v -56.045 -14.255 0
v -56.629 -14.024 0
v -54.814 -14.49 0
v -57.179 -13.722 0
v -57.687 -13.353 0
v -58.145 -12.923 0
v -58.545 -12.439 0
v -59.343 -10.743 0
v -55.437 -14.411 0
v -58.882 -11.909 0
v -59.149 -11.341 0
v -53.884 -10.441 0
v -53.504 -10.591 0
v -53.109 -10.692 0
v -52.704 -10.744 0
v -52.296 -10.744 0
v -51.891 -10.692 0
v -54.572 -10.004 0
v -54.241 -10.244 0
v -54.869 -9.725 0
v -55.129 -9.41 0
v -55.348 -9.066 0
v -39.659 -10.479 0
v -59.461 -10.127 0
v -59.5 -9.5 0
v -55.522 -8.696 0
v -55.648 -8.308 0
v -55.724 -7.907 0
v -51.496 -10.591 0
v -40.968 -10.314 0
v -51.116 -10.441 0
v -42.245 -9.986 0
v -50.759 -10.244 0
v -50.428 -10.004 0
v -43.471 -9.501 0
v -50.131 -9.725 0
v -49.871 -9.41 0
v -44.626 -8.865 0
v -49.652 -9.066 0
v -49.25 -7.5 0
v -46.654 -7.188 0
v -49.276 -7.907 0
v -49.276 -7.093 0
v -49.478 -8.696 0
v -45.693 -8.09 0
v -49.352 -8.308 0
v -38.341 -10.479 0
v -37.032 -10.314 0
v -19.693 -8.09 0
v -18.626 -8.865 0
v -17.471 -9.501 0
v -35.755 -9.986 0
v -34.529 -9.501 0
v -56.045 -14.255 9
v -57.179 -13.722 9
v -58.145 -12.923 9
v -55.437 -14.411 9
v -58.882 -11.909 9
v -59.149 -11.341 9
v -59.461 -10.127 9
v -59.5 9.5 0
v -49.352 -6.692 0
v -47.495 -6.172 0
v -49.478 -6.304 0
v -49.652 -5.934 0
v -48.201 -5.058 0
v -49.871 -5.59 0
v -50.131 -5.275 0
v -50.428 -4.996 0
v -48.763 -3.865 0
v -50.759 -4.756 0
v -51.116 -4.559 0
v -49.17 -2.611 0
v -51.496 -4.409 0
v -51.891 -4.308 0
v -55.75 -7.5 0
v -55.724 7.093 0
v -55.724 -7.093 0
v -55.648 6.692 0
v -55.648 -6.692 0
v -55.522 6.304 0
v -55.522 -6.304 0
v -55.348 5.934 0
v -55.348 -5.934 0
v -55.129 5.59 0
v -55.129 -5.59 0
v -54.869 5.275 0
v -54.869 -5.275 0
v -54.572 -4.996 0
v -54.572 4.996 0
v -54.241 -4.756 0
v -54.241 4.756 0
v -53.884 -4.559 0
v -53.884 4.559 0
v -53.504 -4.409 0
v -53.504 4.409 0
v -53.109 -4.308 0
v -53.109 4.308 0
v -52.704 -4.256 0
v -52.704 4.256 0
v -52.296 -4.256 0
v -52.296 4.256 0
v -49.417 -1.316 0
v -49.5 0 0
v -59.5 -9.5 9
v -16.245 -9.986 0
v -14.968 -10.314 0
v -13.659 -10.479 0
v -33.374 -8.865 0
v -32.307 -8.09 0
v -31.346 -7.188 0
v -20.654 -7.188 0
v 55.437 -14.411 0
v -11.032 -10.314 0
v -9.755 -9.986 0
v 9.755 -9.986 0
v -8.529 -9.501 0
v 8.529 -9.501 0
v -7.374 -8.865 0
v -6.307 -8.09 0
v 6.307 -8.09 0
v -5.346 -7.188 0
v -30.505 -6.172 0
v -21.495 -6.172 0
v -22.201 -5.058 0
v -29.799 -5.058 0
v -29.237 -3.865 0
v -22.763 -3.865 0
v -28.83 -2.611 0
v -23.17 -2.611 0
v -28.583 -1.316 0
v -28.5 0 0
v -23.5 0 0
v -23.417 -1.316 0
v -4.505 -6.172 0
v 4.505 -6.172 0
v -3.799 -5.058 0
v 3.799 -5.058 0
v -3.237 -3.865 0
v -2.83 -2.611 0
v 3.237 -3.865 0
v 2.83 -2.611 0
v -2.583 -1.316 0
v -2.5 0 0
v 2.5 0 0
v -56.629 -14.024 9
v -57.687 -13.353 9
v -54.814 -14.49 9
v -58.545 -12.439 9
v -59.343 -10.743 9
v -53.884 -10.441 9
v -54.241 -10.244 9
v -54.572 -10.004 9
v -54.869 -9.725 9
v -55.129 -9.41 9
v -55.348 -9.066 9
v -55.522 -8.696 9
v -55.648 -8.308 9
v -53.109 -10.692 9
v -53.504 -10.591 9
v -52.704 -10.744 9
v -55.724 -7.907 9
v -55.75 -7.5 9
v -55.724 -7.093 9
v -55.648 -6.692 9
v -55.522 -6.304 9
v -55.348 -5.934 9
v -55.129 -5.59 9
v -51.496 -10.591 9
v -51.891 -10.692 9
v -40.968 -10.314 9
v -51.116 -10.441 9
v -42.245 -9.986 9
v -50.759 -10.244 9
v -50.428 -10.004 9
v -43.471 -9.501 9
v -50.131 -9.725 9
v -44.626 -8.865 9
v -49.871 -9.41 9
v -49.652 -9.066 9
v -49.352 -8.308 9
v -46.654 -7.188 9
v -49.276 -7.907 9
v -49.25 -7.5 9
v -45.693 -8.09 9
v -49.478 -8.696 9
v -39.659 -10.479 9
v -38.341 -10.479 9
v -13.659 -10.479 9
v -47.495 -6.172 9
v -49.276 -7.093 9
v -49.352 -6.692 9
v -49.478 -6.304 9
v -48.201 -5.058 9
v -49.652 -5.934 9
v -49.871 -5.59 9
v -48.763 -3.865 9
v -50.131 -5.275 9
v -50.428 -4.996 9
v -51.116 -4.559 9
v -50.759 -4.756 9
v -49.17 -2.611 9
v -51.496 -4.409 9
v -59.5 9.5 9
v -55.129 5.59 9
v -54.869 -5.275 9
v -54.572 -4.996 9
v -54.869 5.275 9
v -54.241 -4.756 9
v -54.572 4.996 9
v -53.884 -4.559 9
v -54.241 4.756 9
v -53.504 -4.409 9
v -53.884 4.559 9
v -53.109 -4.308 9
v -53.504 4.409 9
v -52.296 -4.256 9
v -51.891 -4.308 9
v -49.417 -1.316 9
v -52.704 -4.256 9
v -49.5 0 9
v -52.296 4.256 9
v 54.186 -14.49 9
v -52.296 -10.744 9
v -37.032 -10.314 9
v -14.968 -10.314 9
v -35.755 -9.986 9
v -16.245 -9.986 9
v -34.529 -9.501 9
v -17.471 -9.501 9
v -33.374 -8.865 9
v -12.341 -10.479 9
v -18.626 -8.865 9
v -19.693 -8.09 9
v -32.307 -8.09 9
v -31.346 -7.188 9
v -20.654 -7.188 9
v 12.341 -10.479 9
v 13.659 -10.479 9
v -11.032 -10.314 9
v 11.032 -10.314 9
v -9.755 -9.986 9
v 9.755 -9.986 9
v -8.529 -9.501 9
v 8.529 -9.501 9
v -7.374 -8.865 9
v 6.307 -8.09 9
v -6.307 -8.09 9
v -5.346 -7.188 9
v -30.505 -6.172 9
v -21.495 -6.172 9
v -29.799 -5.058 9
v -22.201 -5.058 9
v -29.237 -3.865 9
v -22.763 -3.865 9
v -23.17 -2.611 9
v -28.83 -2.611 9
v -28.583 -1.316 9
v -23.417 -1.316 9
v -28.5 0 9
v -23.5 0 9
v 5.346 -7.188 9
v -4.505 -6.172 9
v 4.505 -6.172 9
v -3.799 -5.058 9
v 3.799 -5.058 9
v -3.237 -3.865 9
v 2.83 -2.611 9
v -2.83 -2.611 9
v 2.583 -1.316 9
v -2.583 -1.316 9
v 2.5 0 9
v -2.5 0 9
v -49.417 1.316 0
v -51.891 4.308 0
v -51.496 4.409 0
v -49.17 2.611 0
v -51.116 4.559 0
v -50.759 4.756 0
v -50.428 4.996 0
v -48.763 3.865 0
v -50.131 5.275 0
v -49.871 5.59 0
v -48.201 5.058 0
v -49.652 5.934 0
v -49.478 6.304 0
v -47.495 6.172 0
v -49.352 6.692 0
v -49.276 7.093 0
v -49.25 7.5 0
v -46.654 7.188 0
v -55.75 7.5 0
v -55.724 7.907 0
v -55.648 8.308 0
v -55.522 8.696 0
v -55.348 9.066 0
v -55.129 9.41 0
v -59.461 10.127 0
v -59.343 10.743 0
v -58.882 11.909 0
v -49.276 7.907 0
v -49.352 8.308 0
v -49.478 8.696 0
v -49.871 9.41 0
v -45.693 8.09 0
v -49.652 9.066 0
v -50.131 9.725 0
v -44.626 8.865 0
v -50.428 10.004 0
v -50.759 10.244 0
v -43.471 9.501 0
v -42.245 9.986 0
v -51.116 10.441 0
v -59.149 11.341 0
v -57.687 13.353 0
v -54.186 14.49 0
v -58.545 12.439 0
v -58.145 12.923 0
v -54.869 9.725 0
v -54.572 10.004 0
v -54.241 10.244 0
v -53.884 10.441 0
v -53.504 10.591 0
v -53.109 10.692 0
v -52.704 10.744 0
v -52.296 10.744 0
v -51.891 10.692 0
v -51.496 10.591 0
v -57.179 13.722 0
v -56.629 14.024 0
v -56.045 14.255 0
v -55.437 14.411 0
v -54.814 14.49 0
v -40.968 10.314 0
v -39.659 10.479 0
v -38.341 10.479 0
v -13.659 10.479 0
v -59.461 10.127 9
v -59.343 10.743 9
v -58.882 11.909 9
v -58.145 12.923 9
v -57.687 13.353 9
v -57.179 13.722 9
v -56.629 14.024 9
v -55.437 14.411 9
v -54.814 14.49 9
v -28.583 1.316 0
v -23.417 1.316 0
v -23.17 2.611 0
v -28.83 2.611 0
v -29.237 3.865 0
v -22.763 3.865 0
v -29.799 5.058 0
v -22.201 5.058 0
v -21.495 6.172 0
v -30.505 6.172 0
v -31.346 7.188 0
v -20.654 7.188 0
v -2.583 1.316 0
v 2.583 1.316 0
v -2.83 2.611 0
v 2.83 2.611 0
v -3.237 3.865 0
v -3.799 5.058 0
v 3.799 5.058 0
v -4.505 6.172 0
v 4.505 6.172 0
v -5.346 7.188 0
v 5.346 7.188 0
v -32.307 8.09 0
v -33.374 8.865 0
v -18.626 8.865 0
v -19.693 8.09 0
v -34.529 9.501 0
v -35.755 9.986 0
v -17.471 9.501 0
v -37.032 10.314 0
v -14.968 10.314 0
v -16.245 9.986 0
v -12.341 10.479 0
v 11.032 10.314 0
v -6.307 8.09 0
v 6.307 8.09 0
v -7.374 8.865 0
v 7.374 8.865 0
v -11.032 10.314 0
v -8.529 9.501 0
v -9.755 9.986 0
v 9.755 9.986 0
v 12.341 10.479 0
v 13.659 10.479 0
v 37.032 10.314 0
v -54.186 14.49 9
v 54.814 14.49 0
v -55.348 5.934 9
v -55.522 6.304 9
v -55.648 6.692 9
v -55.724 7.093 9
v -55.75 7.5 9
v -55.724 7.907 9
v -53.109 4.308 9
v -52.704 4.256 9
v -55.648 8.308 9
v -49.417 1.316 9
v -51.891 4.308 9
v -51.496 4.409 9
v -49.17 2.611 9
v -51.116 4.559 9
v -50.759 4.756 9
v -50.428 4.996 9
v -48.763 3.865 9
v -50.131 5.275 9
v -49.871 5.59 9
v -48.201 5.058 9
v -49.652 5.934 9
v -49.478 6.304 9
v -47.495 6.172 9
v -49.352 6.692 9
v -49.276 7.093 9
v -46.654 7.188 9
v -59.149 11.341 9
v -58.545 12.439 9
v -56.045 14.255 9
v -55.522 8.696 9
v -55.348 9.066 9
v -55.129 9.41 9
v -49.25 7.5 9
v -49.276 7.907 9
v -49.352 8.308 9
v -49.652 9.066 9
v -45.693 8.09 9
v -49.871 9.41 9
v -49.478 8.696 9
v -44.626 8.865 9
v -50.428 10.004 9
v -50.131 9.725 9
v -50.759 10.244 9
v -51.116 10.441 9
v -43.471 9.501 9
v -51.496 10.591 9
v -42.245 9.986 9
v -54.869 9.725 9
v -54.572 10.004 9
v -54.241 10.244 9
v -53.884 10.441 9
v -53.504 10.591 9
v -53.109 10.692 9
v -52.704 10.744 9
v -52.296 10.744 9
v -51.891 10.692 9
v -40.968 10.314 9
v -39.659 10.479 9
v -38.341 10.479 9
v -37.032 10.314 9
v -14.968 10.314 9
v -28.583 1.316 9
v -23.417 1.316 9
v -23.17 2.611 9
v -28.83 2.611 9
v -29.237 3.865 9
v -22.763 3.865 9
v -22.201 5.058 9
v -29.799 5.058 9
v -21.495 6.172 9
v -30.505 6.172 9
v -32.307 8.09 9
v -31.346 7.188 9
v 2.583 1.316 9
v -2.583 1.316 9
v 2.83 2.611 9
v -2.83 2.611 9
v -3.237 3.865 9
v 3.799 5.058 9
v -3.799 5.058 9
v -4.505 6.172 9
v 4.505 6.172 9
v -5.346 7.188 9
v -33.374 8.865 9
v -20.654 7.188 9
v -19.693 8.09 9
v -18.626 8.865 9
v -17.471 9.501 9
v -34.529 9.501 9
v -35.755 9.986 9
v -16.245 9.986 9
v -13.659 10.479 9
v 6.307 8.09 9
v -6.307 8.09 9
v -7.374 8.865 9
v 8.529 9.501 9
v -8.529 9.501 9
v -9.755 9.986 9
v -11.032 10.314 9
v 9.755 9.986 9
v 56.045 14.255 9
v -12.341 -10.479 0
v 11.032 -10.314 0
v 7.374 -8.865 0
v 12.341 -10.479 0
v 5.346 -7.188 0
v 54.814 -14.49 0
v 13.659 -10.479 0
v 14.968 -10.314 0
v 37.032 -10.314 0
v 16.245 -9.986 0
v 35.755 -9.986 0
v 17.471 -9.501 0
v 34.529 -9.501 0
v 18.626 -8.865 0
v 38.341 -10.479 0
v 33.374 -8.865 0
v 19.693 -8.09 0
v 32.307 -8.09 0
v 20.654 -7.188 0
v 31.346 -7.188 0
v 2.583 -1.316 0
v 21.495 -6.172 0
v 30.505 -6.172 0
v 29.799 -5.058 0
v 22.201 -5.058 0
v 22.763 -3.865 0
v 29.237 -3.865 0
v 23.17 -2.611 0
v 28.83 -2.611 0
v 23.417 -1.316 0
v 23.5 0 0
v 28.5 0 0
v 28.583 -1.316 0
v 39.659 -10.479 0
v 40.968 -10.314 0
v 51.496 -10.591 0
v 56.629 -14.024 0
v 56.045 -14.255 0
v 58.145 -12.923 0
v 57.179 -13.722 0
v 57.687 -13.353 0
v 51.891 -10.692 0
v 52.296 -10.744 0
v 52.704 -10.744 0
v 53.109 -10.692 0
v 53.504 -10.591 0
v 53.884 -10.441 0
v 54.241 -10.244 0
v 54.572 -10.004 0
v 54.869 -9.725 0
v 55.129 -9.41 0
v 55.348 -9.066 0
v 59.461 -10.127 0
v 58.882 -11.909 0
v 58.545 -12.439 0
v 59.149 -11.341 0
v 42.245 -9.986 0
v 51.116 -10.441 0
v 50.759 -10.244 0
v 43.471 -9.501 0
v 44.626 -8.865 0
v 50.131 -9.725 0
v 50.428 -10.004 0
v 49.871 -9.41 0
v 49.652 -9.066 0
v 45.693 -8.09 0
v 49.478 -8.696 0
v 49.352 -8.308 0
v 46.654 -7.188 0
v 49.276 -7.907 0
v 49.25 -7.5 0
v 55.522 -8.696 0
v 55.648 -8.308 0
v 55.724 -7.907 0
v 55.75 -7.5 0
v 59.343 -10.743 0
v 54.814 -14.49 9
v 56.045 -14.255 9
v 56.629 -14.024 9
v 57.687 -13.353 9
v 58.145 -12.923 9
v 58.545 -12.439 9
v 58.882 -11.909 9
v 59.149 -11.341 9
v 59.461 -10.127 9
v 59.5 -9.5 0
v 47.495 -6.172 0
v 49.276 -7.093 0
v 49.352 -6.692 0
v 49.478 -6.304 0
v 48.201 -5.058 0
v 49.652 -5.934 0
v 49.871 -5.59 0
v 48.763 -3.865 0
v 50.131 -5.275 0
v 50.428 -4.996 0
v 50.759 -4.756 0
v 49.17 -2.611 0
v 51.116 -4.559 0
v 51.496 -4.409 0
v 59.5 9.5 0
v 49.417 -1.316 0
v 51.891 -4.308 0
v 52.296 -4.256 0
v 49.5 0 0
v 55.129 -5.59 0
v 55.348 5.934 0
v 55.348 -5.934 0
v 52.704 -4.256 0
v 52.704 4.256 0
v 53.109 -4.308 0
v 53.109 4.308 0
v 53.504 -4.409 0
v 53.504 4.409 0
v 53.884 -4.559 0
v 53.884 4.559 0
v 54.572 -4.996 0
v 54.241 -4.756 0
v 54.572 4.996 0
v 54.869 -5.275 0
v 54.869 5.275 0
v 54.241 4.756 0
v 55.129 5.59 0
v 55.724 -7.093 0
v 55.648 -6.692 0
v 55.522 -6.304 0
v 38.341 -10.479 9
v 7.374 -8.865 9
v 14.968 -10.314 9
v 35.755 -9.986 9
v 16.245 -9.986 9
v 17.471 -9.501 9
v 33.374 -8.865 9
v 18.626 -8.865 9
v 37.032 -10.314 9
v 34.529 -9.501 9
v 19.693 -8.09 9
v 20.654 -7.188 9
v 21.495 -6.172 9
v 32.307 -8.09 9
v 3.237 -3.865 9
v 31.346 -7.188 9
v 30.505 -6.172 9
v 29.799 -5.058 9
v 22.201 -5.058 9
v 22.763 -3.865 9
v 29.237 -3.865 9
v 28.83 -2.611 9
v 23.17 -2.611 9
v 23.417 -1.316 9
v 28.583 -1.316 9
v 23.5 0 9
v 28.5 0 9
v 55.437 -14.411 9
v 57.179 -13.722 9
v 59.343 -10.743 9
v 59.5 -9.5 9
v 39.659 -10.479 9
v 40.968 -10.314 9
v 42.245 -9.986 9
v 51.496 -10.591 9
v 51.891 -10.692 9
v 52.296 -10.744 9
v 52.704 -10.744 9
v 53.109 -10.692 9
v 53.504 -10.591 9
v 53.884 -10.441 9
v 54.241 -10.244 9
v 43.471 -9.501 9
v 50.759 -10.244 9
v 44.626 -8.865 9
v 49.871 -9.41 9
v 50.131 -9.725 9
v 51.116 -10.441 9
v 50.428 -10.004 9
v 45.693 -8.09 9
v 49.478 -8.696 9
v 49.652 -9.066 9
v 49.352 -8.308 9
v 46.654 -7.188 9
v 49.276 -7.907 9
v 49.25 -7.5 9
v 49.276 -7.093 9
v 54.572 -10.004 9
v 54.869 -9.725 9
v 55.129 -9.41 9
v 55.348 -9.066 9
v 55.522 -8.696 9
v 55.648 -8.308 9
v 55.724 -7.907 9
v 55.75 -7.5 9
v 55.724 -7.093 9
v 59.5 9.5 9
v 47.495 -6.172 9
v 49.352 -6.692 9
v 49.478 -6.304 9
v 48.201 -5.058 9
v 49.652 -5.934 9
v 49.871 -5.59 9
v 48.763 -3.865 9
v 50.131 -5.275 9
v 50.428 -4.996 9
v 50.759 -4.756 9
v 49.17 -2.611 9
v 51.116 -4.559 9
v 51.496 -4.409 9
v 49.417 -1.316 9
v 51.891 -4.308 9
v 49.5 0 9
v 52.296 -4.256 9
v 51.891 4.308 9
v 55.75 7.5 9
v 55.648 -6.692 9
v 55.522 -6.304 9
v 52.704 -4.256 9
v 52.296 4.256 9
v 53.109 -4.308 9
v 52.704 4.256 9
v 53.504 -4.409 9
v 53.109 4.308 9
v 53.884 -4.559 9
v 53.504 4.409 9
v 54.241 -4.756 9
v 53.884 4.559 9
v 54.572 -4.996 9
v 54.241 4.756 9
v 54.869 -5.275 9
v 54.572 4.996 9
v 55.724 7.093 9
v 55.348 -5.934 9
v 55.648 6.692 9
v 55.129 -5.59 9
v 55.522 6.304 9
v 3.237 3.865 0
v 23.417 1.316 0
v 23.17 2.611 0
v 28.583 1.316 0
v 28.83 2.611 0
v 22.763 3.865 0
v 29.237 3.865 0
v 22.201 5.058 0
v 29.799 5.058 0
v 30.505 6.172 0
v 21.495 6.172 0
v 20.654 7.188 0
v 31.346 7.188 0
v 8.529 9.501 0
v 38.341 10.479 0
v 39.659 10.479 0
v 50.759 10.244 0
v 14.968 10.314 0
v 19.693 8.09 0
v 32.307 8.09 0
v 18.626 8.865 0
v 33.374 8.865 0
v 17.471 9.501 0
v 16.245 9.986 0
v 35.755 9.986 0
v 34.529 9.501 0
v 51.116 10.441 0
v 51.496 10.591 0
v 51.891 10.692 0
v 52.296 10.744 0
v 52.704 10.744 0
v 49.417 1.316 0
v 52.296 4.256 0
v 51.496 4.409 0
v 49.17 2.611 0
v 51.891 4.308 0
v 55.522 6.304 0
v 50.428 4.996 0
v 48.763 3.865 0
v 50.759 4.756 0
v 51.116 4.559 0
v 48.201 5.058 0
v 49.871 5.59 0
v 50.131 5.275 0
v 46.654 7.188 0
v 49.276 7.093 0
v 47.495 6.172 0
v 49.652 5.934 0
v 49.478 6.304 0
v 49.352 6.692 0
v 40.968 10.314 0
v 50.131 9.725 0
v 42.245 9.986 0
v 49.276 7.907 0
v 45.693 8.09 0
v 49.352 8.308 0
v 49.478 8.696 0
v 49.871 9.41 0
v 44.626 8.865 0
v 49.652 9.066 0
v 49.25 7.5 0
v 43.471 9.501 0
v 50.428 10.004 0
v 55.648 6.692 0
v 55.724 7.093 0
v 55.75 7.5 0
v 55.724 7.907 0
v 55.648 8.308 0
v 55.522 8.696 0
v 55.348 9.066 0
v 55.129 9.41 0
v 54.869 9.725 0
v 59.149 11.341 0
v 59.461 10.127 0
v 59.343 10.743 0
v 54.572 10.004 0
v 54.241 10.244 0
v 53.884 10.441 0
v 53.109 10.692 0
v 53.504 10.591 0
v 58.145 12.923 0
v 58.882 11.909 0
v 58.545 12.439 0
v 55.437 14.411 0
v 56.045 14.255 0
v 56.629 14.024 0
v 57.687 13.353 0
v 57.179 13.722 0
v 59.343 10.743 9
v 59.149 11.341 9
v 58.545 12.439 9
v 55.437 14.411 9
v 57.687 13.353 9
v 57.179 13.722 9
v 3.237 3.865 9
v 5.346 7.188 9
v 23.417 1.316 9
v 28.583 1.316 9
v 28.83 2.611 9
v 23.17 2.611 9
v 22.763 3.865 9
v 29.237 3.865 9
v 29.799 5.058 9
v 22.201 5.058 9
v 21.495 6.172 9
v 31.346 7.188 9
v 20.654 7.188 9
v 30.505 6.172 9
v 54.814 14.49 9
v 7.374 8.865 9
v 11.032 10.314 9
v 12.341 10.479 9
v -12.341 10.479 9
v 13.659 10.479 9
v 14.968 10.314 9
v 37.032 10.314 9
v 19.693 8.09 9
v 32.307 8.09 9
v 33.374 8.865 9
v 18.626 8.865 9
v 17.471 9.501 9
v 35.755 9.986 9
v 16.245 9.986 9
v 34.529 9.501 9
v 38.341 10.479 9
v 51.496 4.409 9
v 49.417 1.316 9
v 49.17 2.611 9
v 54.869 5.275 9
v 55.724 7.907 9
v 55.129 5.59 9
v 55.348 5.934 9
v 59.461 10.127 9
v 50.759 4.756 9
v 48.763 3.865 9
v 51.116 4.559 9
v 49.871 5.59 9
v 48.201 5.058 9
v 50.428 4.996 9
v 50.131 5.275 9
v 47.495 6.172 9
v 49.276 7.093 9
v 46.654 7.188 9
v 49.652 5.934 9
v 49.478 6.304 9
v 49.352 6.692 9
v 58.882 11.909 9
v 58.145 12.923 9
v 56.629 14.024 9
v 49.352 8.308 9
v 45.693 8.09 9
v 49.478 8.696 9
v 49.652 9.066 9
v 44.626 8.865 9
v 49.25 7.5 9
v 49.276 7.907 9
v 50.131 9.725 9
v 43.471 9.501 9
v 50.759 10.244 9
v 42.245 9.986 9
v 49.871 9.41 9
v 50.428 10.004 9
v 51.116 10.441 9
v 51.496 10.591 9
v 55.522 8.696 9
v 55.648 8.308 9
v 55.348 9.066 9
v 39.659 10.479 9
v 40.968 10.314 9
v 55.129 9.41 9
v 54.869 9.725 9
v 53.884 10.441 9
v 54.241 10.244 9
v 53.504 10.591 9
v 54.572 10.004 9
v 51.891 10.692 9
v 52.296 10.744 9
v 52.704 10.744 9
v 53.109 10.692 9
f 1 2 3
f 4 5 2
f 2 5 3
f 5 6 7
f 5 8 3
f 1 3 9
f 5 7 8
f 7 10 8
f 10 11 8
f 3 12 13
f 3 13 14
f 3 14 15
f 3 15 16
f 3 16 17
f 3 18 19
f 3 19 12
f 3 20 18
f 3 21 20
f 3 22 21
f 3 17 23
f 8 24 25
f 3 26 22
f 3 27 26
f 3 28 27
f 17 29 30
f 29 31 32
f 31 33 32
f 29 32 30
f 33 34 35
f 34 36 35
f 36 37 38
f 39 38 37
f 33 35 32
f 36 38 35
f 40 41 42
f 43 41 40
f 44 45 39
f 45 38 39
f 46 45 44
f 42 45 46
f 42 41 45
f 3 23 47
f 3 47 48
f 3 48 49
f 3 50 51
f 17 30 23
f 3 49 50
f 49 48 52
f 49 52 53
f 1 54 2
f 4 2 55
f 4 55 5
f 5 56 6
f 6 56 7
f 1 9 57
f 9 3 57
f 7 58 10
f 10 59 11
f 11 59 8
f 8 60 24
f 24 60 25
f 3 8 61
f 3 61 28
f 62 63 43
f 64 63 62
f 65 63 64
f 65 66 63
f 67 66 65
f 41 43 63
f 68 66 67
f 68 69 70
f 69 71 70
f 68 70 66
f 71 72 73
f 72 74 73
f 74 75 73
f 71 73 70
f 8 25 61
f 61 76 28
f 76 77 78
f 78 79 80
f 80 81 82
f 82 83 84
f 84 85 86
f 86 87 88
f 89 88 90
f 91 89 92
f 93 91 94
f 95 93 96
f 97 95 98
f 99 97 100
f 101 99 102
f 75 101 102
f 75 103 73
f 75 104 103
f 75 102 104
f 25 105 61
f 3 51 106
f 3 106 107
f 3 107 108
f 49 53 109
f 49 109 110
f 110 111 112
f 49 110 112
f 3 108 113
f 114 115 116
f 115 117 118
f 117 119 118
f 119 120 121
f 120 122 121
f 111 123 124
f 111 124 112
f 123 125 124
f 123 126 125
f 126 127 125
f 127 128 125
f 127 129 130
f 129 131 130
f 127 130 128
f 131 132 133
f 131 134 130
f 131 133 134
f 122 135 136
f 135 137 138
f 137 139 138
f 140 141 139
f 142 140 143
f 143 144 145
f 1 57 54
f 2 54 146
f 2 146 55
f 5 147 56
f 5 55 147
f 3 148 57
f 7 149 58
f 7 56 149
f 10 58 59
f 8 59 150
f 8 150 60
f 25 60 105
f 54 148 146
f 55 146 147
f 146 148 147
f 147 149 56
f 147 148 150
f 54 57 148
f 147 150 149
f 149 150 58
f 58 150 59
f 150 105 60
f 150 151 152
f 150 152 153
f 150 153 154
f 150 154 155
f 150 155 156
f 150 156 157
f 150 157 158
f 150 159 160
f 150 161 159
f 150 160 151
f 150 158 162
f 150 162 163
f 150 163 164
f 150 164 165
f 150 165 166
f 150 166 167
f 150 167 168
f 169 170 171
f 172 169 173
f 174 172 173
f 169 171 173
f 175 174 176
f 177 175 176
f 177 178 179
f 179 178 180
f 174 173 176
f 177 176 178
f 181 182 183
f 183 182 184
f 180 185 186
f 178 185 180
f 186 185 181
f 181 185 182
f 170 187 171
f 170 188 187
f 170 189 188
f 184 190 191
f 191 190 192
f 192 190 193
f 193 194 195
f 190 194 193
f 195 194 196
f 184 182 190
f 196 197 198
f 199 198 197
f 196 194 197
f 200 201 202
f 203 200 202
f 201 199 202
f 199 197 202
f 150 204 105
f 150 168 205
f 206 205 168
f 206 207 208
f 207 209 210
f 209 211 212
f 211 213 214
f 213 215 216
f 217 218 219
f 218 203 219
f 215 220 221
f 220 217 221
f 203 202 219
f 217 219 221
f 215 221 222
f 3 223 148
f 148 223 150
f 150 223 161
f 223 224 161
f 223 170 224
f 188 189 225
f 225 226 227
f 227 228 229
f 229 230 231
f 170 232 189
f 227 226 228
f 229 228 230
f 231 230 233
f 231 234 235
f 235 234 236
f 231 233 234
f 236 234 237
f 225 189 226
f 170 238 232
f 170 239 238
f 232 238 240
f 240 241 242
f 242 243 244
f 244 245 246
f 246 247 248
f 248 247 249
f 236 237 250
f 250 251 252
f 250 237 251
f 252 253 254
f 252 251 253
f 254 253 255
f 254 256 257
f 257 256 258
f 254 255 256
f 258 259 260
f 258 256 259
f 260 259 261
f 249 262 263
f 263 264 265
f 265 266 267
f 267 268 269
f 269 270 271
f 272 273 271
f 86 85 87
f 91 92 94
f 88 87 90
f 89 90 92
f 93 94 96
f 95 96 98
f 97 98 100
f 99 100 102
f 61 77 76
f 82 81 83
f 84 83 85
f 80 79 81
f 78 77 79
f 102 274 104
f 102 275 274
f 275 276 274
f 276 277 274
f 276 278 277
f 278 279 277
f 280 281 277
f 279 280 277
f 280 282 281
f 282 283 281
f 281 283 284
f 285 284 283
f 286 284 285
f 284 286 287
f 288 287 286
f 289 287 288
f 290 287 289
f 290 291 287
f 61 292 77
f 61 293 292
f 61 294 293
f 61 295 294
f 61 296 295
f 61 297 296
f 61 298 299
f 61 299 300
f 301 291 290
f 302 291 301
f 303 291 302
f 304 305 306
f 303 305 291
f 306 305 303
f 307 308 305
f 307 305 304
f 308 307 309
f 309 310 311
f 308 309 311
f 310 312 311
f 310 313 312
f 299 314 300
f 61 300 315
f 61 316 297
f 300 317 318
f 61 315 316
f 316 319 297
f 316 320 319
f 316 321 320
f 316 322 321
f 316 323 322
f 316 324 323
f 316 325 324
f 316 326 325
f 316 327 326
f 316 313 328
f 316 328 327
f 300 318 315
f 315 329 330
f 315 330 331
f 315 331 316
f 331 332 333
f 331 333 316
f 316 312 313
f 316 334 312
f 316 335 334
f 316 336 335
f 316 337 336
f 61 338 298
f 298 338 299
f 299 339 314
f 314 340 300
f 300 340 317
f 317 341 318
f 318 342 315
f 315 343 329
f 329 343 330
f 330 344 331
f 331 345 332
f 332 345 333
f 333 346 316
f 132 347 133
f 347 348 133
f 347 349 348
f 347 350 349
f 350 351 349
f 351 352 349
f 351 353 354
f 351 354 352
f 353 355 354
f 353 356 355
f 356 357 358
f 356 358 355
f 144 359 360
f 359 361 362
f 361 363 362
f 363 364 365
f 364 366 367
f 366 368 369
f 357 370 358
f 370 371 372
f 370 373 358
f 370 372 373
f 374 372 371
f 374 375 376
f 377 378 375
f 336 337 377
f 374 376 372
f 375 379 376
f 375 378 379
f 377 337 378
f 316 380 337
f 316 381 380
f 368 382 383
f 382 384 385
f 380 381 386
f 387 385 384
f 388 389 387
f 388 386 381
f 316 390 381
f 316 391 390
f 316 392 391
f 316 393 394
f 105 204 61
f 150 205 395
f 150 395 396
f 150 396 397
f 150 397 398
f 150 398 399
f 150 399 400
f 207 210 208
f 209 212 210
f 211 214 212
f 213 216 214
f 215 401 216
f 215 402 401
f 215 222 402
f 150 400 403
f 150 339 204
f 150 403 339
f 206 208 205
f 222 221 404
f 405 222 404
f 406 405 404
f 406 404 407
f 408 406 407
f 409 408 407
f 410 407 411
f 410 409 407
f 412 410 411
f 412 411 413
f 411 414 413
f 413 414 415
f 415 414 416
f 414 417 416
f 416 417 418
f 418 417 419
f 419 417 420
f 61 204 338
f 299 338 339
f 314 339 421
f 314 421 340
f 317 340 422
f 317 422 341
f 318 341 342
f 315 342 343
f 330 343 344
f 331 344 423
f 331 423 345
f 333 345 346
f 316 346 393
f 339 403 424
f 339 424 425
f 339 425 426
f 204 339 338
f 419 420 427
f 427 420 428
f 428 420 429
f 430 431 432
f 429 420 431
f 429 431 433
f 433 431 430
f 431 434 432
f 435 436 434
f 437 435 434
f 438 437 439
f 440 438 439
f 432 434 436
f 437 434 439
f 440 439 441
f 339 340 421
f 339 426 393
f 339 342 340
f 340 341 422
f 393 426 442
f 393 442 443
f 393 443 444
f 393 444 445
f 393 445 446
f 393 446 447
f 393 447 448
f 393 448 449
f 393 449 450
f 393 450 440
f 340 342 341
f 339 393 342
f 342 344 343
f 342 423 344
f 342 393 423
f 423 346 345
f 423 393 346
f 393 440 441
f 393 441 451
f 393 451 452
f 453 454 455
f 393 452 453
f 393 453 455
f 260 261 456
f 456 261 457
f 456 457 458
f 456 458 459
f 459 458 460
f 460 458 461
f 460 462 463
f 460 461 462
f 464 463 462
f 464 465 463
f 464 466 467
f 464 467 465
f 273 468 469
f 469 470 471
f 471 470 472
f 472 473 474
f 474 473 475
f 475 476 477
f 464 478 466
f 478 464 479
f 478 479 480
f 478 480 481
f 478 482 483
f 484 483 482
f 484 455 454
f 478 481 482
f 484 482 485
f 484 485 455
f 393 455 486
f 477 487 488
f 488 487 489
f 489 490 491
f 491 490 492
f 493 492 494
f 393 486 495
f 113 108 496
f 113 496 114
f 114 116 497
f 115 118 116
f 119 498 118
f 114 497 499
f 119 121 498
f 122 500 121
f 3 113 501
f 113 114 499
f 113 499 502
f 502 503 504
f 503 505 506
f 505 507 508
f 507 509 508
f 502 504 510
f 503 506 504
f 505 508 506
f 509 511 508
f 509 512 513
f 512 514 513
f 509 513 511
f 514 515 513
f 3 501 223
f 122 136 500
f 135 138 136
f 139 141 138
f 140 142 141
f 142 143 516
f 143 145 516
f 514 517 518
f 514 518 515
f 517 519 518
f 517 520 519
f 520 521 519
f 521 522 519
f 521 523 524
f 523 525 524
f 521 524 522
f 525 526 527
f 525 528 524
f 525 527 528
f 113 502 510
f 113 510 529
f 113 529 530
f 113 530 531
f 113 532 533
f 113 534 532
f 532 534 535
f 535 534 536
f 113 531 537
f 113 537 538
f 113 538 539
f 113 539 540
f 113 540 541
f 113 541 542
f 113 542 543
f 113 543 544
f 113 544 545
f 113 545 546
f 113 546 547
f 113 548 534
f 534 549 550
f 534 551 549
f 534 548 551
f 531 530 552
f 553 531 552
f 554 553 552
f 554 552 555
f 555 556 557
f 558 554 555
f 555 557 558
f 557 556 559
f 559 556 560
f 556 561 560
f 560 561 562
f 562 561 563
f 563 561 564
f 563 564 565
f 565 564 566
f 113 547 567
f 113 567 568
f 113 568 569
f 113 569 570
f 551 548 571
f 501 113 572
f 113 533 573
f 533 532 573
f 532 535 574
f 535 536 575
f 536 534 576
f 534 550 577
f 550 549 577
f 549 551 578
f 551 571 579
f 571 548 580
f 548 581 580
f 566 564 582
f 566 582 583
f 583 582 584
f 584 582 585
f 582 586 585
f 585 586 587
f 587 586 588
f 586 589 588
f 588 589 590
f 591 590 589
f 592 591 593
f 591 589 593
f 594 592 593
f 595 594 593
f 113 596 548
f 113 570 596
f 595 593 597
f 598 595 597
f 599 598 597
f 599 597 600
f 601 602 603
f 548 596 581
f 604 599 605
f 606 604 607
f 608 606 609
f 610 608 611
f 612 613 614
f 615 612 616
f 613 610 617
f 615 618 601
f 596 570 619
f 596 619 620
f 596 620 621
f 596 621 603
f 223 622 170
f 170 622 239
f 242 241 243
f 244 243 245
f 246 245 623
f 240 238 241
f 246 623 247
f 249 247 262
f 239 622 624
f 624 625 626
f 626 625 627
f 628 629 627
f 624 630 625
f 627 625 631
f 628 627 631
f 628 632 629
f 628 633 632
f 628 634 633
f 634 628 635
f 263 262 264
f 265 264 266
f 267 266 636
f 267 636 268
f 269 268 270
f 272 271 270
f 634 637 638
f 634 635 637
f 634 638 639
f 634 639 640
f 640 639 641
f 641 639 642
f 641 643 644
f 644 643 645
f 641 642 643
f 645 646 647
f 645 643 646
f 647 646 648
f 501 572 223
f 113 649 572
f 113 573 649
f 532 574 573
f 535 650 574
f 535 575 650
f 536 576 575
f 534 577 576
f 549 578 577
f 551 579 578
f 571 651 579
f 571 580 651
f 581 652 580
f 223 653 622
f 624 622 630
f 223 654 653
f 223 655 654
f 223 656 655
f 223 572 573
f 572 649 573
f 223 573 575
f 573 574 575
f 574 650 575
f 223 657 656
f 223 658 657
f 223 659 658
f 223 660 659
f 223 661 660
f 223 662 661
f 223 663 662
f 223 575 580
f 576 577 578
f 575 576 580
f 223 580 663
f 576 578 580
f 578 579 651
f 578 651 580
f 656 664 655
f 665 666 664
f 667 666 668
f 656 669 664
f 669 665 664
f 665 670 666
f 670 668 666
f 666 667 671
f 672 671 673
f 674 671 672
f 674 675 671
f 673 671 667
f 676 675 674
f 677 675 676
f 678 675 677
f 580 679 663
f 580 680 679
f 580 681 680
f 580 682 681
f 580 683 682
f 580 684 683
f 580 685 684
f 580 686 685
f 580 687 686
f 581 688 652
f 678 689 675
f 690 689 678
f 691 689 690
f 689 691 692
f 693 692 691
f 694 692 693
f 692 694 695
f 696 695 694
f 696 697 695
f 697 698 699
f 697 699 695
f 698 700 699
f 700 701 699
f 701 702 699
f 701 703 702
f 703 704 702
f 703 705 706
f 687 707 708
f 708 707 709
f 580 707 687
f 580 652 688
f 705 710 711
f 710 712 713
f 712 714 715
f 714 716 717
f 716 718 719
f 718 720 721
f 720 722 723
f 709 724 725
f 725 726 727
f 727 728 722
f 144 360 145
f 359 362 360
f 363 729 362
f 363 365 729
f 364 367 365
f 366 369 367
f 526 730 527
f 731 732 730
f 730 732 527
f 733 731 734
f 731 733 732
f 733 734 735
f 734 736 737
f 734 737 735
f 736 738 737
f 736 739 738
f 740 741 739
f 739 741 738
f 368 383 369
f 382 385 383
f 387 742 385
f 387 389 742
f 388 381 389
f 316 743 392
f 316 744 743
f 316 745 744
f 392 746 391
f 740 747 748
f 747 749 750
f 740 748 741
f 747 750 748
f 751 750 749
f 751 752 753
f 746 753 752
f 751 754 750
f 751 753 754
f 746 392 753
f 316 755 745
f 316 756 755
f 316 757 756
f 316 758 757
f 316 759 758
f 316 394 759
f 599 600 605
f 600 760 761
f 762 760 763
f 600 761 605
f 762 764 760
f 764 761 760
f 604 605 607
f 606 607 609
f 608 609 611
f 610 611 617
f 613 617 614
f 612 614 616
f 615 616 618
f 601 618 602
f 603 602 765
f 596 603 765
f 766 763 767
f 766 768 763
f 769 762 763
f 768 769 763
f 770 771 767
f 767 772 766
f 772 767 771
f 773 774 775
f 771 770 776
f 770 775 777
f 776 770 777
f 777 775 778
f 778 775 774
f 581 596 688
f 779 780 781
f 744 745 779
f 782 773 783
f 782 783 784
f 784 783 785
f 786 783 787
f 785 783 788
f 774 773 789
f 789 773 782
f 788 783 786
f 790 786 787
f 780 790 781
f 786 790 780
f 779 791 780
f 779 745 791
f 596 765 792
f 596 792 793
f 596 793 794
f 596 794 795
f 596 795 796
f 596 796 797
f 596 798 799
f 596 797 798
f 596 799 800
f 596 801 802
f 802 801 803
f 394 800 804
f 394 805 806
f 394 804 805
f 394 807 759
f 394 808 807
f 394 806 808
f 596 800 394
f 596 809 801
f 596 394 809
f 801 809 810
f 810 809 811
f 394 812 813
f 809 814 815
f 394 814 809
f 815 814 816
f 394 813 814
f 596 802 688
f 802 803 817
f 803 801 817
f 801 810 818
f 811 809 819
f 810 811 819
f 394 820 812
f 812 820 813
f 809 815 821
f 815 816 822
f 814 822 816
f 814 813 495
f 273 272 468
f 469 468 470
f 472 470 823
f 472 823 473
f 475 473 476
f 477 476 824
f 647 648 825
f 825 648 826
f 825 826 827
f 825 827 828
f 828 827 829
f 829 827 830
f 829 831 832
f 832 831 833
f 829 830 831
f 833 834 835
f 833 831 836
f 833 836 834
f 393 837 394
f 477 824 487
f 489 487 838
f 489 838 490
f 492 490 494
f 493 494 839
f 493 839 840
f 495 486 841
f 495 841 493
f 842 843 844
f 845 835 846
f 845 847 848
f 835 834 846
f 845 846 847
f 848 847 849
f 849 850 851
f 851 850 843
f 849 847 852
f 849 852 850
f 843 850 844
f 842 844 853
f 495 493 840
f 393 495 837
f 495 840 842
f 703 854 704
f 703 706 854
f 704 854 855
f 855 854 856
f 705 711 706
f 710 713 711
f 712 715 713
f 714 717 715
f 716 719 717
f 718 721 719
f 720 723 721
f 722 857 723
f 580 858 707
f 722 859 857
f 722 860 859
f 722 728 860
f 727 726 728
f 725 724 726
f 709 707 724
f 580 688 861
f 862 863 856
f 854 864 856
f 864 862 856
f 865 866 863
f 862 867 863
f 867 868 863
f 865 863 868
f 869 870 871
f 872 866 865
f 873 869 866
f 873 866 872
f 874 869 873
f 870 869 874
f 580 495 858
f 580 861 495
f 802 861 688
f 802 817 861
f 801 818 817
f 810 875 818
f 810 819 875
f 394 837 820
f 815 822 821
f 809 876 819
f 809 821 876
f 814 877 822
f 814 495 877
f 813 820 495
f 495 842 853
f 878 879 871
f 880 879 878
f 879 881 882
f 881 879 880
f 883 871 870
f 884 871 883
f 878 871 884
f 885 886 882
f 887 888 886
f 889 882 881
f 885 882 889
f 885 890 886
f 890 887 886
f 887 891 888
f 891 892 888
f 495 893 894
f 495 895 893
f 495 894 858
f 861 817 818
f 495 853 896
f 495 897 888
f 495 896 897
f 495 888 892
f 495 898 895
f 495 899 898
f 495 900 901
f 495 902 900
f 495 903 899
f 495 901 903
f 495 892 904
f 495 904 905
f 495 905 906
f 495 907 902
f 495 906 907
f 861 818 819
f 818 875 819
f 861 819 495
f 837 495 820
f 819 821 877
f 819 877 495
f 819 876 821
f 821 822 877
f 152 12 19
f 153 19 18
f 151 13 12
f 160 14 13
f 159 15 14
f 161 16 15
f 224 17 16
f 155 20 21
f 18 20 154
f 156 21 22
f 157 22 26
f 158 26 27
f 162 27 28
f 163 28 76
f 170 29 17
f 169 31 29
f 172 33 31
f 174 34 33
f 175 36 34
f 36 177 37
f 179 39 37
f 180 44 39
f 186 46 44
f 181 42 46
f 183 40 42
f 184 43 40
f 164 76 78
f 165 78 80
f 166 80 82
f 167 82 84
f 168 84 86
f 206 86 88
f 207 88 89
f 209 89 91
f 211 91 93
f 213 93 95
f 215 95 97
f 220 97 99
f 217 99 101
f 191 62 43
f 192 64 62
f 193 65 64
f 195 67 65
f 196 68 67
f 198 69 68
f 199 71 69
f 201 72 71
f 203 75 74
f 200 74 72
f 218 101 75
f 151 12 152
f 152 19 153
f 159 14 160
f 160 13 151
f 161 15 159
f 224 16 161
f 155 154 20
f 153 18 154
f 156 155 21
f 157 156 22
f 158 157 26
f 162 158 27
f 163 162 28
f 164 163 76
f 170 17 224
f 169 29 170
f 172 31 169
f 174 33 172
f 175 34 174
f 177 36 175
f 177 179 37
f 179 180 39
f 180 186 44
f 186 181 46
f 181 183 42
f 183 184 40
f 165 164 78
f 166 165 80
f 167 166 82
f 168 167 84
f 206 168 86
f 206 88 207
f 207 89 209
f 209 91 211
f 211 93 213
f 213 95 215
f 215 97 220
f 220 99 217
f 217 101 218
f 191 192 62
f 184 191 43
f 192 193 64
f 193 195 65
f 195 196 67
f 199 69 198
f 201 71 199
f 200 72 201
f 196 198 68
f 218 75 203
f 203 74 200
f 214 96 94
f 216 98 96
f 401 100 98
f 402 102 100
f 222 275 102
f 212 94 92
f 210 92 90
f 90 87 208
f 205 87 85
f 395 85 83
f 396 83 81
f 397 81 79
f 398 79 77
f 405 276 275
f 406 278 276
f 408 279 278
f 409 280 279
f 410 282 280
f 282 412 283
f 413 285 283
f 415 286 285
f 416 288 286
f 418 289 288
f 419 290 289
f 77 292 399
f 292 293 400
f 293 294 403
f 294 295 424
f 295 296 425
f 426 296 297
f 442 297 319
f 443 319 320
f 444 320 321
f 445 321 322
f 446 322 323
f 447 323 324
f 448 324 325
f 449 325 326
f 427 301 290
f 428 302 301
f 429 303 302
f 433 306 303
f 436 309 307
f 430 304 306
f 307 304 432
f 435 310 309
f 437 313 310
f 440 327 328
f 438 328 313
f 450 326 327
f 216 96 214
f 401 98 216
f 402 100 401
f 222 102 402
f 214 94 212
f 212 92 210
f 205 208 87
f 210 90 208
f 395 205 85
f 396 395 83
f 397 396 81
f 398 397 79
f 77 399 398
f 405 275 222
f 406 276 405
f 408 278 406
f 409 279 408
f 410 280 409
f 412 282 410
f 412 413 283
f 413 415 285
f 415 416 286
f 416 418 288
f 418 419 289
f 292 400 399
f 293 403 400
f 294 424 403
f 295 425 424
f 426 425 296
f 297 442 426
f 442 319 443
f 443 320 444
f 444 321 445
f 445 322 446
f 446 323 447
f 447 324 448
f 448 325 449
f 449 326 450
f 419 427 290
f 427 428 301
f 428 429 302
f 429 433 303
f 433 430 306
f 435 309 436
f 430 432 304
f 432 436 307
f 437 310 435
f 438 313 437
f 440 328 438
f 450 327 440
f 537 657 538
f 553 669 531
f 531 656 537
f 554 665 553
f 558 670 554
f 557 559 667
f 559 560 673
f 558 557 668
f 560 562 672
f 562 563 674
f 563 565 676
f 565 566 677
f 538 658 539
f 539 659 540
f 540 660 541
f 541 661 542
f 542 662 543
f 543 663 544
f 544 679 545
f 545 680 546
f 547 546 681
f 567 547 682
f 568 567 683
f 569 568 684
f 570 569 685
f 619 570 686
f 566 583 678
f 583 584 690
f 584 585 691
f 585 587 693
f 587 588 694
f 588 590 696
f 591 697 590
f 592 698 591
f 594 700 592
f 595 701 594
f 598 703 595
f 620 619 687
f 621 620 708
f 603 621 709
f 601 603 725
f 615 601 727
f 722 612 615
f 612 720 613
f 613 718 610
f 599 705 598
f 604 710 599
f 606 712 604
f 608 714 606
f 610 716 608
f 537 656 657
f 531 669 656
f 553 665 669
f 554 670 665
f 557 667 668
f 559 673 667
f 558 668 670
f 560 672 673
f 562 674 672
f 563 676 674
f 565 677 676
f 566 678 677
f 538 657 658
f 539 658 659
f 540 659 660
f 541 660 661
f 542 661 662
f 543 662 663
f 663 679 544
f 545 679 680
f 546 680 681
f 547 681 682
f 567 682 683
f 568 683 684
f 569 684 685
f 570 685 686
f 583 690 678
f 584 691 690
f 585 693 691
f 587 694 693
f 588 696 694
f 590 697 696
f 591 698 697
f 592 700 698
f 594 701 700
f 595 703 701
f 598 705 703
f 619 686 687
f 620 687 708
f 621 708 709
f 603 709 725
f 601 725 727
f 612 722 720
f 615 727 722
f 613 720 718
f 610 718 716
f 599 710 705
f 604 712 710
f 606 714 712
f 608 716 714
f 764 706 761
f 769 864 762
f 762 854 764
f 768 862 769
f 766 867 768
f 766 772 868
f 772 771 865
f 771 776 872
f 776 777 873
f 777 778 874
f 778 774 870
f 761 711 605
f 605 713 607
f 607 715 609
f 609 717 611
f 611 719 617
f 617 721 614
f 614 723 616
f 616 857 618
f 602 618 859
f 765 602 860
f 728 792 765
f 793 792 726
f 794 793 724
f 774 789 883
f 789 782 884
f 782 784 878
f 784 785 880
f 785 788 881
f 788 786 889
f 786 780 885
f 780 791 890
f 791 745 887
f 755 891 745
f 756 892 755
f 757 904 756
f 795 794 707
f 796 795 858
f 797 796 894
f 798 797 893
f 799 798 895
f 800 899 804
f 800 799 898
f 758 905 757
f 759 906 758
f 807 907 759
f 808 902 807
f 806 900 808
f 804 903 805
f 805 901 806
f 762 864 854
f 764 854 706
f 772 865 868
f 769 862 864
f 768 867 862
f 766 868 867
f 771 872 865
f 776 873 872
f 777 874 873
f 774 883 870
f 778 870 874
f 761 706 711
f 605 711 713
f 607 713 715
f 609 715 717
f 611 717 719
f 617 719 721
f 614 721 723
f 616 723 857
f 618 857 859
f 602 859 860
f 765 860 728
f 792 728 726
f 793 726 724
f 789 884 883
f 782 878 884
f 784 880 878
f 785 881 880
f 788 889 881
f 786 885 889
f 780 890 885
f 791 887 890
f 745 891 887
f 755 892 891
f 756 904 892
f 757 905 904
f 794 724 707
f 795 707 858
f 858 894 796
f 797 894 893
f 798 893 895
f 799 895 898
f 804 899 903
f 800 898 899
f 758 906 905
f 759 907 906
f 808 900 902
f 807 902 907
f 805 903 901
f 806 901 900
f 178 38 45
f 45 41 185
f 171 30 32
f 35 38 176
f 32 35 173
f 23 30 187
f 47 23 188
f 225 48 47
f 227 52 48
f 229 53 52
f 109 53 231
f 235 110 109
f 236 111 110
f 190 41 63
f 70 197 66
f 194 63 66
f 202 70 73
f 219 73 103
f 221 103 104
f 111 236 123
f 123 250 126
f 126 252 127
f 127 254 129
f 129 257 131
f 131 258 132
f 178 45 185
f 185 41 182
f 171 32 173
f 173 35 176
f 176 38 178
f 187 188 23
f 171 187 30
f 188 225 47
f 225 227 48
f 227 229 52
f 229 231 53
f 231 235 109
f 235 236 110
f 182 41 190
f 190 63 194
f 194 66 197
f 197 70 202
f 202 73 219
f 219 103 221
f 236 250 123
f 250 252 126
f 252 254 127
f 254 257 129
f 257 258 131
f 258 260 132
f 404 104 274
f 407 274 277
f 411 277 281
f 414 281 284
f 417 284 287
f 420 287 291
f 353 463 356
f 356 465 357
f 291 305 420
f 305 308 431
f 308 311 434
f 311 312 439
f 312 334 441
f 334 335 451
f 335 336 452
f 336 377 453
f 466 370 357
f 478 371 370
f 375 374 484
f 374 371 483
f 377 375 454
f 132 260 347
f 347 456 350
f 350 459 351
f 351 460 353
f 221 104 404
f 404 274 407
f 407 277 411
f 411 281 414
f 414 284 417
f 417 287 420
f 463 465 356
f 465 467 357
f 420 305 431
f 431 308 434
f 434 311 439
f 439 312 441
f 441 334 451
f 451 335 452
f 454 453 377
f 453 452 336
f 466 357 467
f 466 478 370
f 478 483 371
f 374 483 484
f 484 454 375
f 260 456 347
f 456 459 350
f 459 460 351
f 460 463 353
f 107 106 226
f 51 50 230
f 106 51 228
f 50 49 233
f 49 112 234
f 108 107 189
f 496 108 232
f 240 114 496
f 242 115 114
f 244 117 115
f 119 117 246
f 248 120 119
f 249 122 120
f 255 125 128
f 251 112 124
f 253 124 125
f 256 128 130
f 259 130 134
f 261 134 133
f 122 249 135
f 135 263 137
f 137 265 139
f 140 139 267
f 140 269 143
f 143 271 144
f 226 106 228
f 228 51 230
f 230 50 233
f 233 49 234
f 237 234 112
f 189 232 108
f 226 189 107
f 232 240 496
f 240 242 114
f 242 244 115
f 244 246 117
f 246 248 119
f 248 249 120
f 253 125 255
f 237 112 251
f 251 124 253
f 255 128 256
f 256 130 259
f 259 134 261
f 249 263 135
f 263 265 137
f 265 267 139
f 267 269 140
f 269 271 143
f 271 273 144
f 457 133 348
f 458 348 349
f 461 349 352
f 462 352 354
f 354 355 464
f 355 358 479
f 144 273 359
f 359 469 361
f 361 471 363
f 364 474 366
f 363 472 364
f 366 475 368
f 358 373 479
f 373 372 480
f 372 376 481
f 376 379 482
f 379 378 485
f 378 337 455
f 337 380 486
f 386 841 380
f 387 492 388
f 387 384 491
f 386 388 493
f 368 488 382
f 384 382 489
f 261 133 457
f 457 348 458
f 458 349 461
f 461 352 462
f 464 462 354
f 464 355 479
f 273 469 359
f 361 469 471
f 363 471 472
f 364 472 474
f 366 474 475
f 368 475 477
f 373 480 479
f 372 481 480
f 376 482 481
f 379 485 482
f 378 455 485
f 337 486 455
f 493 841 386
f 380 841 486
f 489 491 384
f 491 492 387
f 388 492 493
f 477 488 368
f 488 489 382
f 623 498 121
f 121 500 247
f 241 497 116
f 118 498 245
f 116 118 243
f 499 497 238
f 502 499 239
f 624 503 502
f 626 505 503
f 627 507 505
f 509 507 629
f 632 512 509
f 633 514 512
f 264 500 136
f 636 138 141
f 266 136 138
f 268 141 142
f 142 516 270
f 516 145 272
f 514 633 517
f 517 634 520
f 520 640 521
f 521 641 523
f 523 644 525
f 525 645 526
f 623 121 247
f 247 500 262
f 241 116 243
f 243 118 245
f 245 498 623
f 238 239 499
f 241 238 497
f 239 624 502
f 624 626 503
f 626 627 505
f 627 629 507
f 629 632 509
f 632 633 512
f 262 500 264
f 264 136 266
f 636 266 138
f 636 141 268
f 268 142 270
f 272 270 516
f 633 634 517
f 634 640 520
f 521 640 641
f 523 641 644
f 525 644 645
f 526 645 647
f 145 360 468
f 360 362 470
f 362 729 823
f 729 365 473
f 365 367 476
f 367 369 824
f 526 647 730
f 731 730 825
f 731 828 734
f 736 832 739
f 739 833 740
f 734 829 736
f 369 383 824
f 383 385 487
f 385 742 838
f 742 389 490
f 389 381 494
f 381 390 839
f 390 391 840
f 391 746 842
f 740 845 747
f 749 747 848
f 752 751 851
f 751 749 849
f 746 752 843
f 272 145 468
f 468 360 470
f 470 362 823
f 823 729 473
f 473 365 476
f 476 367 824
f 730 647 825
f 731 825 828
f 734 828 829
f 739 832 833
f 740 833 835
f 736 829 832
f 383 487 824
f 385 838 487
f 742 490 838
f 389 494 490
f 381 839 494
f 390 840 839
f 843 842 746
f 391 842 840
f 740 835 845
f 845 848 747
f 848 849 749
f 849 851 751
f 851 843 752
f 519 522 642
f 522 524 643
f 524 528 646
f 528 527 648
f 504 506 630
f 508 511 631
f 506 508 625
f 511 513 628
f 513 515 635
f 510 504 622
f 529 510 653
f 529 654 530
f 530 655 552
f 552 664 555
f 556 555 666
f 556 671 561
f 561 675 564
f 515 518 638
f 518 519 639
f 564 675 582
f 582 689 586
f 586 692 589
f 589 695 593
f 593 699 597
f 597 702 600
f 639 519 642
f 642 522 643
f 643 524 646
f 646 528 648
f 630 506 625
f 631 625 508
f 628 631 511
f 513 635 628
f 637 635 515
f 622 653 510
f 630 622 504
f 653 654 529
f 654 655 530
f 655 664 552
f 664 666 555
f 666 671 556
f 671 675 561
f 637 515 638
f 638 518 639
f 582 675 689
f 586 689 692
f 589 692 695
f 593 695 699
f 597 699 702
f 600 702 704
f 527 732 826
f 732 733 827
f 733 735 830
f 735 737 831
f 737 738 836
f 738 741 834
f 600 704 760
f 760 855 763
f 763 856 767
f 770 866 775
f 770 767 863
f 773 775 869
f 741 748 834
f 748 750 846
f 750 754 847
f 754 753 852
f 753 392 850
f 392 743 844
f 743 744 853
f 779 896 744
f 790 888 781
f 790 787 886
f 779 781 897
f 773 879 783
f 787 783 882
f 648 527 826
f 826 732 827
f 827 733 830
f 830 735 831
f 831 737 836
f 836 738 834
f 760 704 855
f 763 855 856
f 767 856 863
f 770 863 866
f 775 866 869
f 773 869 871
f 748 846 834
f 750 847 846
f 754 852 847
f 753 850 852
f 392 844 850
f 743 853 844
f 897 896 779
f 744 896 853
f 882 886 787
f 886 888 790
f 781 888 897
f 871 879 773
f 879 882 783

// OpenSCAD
$fn = 50;

difference() {
	union() {
		hull() {
			translate(v = [-54.5, 9.5, 0]) {
				cylinder(h = 9, r = 5);
			}
			translate(v = [54.5, 9.5, 0]) {
				cylinder(h = 9, r = 5);
			}
			translate(v = [-54.5, -9.5, 0]) {
				cylinder(h = 9, r = 5);
			}
			translate(v = [54.5, -9.5, 0]) {
				cylinder(h = 9, r = 5);
			}
		}
	}
	union() {
		translate(v = [-52.5, -7.5, -100.0]) {
			cylinder(h = 200, r = 3.25);
		}
		translate(v = [-52.5, 7.5, -100.0]) {
			cylinder(h = 200, r = 3.25);
		}
		translate(v = [52.5, -7.5, -100.0]) {
			cylinder(h = 200, r = 3.25);
		}
		translate(v = [52.5, 7.5, -100.0]) {
			cylinder(h = 200, r = 3.25);
		}
		translate(v = [-52.5, -7.5, -100.0]) {
			cylinder(h = 200, r = 1.8);
		}
		translate(v = [-52.5, 7.5, -100.0]) {
			cylinder(h = 200, r = 1.8);
		}
		translate(v = [52.5, -7.5, -100.0]) {
			cylinder(h = 200, r = 1.8);
		}
		translate(v = [52.5, 7.5, -100.0]) {
			cylinder(h = 200, r = 1.8);
		}
		translate(v = [-39.0, 0, 0.0]) {
			cylinder(h = 9, r = 10.5);
		}
		translate(v = [-13.0, 0, 0.0]) {
			cylinder(h = 9, r = 10.5);
		}
		translate(v = [13.0, 0, 0.0]) {
			cylinder(h = 9, r = 10.5);
		}
		translate(v = [39.0, 0, 0.0]) {
			cylinder(h = 9, r = 10.5);
		}
	}
}
